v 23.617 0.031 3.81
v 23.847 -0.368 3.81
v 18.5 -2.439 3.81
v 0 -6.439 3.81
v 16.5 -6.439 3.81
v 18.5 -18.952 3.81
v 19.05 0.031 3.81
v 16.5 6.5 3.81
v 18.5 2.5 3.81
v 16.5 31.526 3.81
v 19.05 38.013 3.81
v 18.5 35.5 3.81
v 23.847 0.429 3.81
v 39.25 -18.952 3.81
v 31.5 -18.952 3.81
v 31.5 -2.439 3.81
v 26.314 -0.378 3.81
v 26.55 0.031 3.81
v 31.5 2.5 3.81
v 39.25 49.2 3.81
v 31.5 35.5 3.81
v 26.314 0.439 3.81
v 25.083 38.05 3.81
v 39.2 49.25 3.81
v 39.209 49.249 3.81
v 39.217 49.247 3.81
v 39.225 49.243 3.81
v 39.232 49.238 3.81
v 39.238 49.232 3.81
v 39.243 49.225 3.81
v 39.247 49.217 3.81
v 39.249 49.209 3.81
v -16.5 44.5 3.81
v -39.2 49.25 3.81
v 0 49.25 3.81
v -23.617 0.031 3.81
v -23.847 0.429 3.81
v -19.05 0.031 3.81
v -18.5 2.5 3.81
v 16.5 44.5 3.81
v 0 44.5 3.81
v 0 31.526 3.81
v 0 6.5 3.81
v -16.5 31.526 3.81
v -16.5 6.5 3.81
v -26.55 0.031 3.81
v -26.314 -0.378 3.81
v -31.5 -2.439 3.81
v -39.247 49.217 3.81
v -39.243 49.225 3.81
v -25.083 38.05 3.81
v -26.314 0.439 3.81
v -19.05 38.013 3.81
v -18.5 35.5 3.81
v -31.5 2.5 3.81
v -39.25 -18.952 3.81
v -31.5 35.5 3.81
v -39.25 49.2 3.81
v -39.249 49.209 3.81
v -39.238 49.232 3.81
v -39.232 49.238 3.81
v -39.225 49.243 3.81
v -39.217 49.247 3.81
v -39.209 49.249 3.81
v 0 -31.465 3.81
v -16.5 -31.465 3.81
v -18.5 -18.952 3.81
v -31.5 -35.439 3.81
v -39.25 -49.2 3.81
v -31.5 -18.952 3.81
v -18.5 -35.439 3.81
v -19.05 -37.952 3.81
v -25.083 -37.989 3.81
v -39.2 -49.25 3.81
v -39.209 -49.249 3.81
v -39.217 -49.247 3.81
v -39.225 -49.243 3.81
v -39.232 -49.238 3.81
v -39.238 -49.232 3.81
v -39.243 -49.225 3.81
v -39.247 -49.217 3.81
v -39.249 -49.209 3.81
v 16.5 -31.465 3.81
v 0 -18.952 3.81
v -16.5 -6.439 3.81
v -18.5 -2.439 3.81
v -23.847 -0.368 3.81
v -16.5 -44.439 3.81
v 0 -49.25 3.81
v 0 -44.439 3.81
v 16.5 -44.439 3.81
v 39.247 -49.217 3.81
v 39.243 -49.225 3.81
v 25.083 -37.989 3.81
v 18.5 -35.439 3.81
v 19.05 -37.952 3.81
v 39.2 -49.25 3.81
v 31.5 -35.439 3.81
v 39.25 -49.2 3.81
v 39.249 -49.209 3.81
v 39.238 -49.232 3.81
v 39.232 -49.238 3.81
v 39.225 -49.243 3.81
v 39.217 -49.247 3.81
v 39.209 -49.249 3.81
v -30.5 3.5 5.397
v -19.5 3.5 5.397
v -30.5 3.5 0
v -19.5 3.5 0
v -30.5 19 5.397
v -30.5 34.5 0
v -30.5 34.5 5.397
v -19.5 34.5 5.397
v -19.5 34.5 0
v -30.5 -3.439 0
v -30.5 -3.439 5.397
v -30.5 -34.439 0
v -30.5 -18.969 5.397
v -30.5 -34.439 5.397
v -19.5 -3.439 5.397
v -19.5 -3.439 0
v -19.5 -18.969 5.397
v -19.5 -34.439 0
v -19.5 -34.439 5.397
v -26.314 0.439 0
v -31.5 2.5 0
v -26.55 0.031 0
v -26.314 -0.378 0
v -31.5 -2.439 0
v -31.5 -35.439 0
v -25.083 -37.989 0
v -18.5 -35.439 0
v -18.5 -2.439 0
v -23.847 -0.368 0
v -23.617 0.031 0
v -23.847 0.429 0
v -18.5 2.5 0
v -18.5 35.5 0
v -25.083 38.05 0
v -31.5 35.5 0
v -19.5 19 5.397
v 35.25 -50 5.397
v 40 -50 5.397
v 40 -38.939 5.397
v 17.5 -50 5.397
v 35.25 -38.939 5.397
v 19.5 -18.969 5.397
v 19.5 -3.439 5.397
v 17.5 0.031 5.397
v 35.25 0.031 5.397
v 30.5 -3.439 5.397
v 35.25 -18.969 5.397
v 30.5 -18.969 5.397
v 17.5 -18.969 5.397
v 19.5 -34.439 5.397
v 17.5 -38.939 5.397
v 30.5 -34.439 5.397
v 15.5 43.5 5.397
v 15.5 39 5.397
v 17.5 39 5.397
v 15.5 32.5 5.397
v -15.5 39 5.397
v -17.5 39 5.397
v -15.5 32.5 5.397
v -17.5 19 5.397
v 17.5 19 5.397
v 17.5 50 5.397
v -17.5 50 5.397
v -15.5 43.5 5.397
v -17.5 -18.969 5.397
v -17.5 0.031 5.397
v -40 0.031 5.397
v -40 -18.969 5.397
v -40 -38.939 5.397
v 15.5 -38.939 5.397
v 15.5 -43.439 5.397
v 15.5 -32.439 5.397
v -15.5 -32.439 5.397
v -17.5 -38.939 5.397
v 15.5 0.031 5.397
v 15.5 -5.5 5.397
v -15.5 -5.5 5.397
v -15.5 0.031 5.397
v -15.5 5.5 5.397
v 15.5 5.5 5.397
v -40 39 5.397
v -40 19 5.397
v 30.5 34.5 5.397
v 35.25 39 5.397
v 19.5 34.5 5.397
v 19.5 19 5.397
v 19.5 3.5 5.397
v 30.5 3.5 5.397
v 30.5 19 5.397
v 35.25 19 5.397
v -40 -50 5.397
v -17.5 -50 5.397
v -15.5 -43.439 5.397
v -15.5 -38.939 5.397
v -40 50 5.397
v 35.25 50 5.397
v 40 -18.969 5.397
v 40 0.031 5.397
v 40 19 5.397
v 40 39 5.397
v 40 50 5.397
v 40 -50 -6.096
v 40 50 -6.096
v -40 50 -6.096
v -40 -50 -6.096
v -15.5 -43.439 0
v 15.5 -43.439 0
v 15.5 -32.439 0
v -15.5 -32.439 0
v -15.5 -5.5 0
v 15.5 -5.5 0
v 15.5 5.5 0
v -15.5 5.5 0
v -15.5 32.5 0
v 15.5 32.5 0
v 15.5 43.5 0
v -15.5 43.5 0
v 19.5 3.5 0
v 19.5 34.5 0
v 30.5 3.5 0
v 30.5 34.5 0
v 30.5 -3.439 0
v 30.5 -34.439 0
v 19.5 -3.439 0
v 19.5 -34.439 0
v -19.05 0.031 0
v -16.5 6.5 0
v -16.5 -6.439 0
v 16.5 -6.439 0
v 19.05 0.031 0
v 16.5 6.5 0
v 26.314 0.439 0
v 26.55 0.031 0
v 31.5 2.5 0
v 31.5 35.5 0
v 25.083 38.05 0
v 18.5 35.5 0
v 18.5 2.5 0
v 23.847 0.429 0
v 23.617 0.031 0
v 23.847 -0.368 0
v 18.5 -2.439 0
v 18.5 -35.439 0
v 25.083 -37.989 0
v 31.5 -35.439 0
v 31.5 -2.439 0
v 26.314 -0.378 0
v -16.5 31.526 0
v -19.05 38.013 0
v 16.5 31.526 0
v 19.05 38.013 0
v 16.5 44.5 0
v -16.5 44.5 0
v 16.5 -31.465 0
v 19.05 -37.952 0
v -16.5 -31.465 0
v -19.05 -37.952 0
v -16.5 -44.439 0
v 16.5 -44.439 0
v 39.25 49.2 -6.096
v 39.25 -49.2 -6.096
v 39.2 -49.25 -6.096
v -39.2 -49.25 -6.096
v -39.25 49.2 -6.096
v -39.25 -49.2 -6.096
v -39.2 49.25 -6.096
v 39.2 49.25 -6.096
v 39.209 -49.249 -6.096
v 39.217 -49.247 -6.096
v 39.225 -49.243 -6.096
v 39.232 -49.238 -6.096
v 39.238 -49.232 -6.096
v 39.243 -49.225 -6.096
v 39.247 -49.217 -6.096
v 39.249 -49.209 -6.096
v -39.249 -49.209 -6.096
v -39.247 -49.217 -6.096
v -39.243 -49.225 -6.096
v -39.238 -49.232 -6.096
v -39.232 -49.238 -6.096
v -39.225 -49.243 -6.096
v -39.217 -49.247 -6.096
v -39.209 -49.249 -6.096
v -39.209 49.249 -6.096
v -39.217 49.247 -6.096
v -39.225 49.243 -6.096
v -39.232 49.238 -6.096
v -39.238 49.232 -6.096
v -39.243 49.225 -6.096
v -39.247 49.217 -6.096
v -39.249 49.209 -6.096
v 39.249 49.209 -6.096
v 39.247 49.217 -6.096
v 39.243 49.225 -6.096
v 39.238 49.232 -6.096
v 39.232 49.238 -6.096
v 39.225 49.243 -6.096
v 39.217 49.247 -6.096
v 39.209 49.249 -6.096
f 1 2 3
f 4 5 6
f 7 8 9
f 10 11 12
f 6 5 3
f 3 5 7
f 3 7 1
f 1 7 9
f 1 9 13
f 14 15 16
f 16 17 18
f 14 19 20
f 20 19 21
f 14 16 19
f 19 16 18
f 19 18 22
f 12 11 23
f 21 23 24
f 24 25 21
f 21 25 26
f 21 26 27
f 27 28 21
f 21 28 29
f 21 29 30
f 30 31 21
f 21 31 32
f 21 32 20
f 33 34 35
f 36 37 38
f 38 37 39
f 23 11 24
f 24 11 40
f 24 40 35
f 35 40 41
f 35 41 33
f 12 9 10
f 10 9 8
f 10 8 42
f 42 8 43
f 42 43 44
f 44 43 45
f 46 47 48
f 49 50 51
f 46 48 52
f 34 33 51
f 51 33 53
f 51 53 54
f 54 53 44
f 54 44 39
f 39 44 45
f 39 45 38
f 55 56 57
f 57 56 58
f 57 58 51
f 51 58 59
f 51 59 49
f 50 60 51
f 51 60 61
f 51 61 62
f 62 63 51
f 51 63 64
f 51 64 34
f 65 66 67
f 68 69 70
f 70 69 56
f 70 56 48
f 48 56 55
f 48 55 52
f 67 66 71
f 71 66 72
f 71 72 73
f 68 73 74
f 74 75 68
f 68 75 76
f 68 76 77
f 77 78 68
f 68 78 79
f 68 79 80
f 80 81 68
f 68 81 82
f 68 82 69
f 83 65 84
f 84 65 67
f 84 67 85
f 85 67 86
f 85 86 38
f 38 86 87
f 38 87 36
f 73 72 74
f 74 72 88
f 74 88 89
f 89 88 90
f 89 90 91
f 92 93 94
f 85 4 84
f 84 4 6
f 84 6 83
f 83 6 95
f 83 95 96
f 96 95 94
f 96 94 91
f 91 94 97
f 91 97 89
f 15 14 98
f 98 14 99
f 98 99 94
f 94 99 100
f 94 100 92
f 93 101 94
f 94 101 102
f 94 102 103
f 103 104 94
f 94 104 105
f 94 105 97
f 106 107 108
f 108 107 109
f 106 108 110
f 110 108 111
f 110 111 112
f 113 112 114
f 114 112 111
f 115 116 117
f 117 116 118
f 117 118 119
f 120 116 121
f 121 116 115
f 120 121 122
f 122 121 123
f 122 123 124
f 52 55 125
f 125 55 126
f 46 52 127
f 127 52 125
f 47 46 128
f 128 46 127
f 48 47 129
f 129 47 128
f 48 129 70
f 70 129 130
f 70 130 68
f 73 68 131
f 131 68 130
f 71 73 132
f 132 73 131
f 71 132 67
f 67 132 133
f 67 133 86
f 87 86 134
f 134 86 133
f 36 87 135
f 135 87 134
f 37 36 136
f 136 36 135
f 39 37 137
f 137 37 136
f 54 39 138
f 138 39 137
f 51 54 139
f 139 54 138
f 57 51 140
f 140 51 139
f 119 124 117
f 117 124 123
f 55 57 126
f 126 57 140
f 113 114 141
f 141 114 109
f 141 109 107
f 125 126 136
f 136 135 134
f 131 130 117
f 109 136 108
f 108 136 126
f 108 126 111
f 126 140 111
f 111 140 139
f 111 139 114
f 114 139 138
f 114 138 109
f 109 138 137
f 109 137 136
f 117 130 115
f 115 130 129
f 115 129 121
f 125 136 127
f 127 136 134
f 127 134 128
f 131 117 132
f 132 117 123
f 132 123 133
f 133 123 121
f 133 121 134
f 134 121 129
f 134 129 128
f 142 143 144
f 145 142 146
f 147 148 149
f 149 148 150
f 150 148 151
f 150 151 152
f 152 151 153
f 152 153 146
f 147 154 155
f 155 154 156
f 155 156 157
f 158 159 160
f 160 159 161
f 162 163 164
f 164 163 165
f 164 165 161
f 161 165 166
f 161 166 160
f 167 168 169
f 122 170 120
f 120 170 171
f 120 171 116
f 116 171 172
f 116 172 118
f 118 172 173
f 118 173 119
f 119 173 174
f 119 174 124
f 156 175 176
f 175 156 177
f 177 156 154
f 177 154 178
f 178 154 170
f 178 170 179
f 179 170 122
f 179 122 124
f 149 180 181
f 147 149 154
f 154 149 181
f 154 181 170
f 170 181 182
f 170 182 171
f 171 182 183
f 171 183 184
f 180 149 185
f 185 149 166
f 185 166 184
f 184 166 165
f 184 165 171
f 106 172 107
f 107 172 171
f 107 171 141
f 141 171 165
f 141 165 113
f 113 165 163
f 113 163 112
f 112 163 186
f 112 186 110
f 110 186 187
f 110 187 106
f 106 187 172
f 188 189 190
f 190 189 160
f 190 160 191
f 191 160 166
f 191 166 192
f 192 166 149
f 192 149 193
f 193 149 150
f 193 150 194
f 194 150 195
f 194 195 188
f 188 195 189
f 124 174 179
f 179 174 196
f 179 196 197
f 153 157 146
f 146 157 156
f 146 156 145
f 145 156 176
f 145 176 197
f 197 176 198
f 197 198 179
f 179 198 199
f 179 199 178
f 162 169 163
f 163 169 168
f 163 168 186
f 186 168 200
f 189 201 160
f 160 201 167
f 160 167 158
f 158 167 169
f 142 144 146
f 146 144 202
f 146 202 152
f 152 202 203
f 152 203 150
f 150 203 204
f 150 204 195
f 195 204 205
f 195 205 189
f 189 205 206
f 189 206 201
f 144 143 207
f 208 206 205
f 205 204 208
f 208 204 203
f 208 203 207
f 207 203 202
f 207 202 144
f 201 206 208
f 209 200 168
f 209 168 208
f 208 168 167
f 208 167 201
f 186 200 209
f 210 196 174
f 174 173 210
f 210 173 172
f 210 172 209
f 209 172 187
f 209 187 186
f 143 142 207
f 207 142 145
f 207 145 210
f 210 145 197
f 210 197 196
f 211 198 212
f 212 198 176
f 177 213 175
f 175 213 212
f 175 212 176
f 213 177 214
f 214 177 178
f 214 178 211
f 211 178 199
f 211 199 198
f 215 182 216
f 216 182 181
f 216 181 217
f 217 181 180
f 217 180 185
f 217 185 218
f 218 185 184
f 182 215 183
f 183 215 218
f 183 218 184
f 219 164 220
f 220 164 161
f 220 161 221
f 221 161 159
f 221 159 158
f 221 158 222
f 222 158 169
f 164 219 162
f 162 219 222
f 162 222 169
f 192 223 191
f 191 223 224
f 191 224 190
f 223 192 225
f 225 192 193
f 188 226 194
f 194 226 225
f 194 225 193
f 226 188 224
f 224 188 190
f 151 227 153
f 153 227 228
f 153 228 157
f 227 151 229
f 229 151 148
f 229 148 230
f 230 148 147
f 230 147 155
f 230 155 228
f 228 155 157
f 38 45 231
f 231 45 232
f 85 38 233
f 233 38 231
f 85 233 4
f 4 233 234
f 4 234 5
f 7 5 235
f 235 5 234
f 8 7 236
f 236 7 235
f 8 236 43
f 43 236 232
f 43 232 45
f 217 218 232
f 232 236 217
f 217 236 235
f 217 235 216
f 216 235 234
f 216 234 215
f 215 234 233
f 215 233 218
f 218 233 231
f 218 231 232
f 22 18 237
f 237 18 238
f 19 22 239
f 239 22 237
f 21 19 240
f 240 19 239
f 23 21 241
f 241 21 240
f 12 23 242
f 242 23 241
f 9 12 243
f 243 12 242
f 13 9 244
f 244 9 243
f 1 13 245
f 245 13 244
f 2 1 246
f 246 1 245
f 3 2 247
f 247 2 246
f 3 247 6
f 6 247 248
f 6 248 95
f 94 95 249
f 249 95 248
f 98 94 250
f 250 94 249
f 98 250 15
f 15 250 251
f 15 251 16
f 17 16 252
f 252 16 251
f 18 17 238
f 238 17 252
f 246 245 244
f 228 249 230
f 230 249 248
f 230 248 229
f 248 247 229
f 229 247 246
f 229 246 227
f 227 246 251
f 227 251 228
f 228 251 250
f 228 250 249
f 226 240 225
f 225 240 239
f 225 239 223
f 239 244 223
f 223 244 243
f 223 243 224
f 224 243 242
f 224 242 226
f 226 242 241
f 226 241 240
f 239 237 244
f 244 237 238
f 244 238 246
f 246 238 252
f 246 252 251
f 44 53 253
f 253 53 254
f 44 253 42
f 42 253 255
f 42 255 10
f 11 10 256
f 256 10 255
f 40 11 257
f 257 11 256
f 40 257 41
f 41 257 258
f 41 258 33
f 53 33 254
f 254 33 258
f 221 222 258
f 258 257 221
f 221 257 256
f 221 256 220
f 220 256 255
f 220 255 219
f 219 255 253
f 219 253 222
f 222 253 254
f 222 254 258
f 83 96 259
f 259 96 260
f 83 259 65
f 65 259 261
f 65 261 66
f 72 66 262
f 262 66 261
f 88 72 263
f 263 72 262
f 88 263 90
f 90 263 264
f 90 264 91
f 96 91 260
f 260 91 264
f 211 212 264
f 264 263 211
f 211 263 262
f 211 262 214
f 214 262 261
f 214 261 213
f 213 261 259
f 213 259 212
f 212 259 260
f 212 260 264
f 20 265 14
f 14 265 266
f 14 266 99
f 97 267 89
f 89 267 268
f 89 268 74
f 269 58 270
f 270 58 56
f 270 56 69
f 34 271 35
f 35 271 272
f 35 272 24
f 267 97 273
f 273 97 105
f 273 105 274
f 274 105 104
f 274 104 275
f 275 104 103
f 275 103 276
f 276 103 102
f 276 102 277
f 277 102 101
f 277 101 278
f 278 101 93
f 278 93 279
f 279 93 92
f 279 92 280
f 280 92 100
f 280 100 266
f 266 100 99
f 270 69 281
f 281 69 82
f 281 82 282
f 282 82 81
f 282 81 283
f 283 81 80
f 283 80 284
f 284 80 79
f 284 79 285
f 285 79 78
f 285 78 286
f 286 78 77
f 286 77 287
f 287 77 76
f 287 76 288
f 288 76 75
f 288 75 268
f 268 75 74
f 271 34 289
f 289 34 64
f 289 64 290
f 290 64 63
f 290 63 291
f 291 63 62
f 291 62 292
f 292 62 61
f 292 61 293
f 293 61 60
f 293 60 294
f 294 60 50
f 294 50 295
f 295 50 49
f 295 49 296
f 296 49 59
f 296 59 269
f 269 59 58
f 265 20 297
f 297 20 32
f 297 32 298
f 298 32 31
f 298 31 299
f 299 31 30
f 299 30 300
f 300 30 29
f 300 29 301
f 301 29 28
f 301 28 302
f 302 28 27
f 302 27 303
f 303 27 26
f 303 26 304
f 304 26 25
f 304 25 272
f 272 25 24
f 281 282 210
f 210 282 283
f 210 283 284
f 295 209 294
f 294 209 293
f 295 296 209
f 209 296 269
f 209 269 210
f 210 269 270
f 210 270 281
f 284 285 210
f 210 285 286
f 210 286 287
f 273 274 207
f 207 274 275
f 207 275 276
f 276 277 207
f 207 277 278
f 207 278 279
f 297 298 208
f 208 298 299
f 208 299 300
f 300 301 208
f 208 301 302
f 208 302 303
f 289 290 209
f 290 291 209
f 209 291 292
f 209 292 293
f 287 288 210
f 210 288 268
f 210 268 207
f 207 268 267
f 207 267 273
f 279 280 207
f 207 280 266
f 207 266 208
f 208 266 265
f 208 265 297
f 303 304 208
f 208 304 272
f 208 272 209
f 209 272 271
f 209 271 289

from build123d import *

# Parameters (mm, degrees)
SKETCH1_W             = 11
SKETCH1_H             = 31
BOSS_EXTRUDE1_DEPTH   = 3.81
SKETCH1_W_2           = 31
SKETCH1_H_2           = 11
BOSS_EXTRUDE1_2_DEPTH = 3.81
BOSS_EXTRUDE1_3_DEPTH = 3.81
BOSS_EXTRUDE1_4_DEPTH = 3.81
BOSS_EXTRUDE1_5_DEPTH = 3.81
SKETCH1_W_3           = 80
SKETCH1_H_3           = 100
SKETCH1_W_4           = 78.5
SKETCH1_H_4           = 98.5
BOSS_EXTRUDE1_6_DEPTH = 3.81
SKETCH3_W             = 80
SKETCH3_H             = 100
SKETCH3_W_2           = 31
SKETCH3_H_2           = 11
SKETCH3_W_3           = 11
SKETCH3_H_3           = 31
BOSS_EXTRUDE2_DEPTH   = 1.5875
FILLET1_R             = 0.05
SKETCH9_W             = 80
SKETCH9_H             = 100
BOSS_EXTRUDE6_DEPTH   = 6.096


with BuildPart() as part:
    # Sketch1 → Boss-Extrude1 (new body)
    with BuildSketch(Plane.XY):
        Polygon((-26.313903431, 0.439060111), (-31.5, 2.5), (-31.5, 35.5), (-25.083245041, 38.05), (-18.5, 35.5), (-18.5, 2.5), (-23.846750882, 0.428952262), (-23.616775358, 0.03062297), (-23.846750882, -0.367706323), (-18.5, -2.438754061), (-18.5, -35.438754061), (-25.083245041, -37.988754061), (-31.5, -35.438754061), (-31.5, -2.438754061), (-26.313903431, -0.377814172), (-26.549714725, 0.03062297), align=None)
        with Locations((-25, -18.938754061)):
            Rectangle(SKETCH1_W, SKETCH1_H, mode=Mode.SUBTRACT)
        with Locations((-25, 19)):
            Rectangle(SKETCH1_W, SKETCH1_H, mode=Mode.SUBTRACT)
    extrude(amount=BOSS_EXTRUDE1_DEPTH)



with BuildPart() as body_2:
    # Sketch1 → Boss-Extrude1 2 (new body)
    with BuildSketch(Plane.XY):
        Polygon((-19.05, 0.03062297), (-16.5, 6.5), (16.5, 6.5), (19.05, 0.03062297), (16.5, -6.438754061), (-16.5, -6.438754061), align=None)
        Rectangle(SKETCH1_W_2, SKETCH1_H_2, mode=Mode.SUBTRACT)
    extrude(amount=BOSS_EXTRUDE1_2_DEPTH)


with BuildPart() as body_3:
    # Sketch1 → Boss-Extrude1 3 (new body)
    with BuildSketch(Plane.XY):
        Polygon((26.313903431, 0.439060111), (26.549714725, 0.03062297), (26.313903431, -0.377814172), (31.5, -2.438754061), (31.5, -35.438754061), (25.083245041, -37.988754061), (18.5, -35.438754061), (18.5, -2.438754061), (23.846750882, -0.367706323), (23.616775358, 0.03062297), (23.846750882, 0.428952262), (18.5, 2.5), (18.5, 35.5), (25.083245041, 38.05), (31.5, 35.5), (31.5, 2.5), align=None)
        with Locations((25, 19)):
            Rectangle(SKETCH1_W, SKETCH1_H, mode=Mode.SUBTRACT)
        with Locations((25, -18.938754061)):
            Rectangle(SKETCH1_W, SKETCH1_H, mode=Mode.SUBTRACT)
    extrude(amount=BOSS_EXTRUDE1_3_DEPTH)


with BuildPart() as body_4:
    # Sketch1 → Boss-Extrude1 4 (new body)
    with BuildSketch(Plane.XY):
        Polygon((-16.5, 31.52602227), (-19.05, 38.013011135), (-16.5, 44.5), (16.5, 44.5), (19.05, 38.013011135), (16.5, 31.52602227), align=None)
        with Locations((0, 38)):
            Rectangle(SKETCH1_W_2, SKETCH1_H_2, mode=Mode.SUBTRACT)
    extrude(amount=BOSS_EXTRUDE1_4_DEPTH)


with BuildPart() as body_5:
    # Sketch1 → Boss-Extrude1 5 (new body)
    with BuildSketch(Plane.XY):
        Polygon((16.5, -31.464776331), (19.05, -37.951765196), (16.5, -44.438754061), (-16.5, -44.438754061), (-19.05, -37.951765196), (-16.5, -31.464776331), align=None)
        with Locations((0, -37.938754061)):
            Rectangle(SKETCH1_W_2, SKETCH1_H_2, mode=Mode.SUBTRACT)
    extrude(amount=BOSS_EXTRUDE1_5_DEPTH)


with BuildPart() as body_6:
    # Sketch1 → Boss-Extrude1 6 (new body)
    with BuildSketch(Plane.XY):
        Rectangle(SKETCH1_W_3, SKETCH1_H_3)
        Rectangle(SKETCH1_W_4, SKETCH1_H_4, mode=Mode.SUBTRACT)
    extrude(amount=BOSS_EXTRUDE1_6_DEPTH)


with BuildPart() as part_1:
    add(part.part)

    add(body_2.part)  # Boss-Extrude2 merges body 2

    add(body_3.part)  # Boss-Extrude2 merges body 3

    add(body_4.part)  # Boss-Extrude2 merges body 4

    add(body_5.part)  # Boss-Extrude2 merges body 5

    add(body_6.part)  # Boss-Extrude2 merges body 6
    # Sketch3 → Boss-Extrude2 (add)
    with BuildSketch(Plane.XY.offset(3.81)):
        Rectangle(SKETCH3_W, SKETCH3_H)
        with Locations((0, -37.938754061)):
            Rectangle(SKETCH3_W_2, SKETCH3_H_2, mode=Mode.SUBTRACT)
        Rectangle(SKETCH3_W_2, SKETCH3_H_2, mode=Mode.SUBTRACT)
        with Locations((-25, -18.938754061)):
            Rectangle(SKETCH3_W_3, SKETCH3_H_3, mode=Mode.SUBTRACT)
        with Locations((-25, 19)):
            Rectangle(SKETCH3_W_3, SKETCH3_H_3, mode=Mode.SUBTRACT)
        with Locations((0, 38)):
            Rectangle(SKETCH3_W_2, SKETCH3_H_2, mode=Mode.SUBTRACT)
        with Locations((25, 19)):
            Rectangle(SKETCH3_W_3, SKETCH3_H_3, mode=Mode.SUBTRACT)
        with Locations((25, -18.938754061)):
            Rectangle(SKETCH3_W_3, SKETCH3_H_3, mode=Mode.SUBTRACT)
    extrude(amount=BOSS_EXTRUDE2_DEPTH)

    # Fillet1
    fillet1_edges = [part_1.edges().sort_by_distance(p)[0] for p in [
        (39.25, 49.25, 1.905),
        (39.25, -49.25, 1.905),
        (-39.25, -49.25, 1.905),
        (-39.25, 49.25, 1.905),
    ]]
    fillet(fillet1_edges, radius=FILLET1_R)

    # Sketch9 → Boss-Extrude6 (add)
    with BuildSketch(Plane(origin=(0, 0, 0), x_dir=(-1, 0, 0), z_dir=(0, 0, -1))):
        Rectangle(SKETCH9_W, SKETCH9_H)
        with BuildLine():
            Line((39.2, 49.25), (-39.2, 49.25))
            ThreePointArc((-39.2, 49.25), (-39.235355339, 49.235355339), (-39.25, 49.2))
            Line((-39.25, 49.2), (-39.25, -49.2))
            ThreePointArc((-39.25, -49.2), (-39.235355339, -49.235355339), (-39.2, -49.25))
            Line((-39.2, -49.25), (39.2, -49.25))
            ThreePointArc((39.2, -49.25), (39.235355339, -49.235355339), (39.25, -49.2))
            Line((39.25, -49.2), (39.25, 49.2))
            ThreePointArc((39.25, 49.2), (39.235355339, 49.235355339), (39.2, 49.25))
        make_face(mode=Mode.SUBTRACT)
    extrude(amount=BOSS_EXTRUDE6_DEPTH)


solid = part_1.part
